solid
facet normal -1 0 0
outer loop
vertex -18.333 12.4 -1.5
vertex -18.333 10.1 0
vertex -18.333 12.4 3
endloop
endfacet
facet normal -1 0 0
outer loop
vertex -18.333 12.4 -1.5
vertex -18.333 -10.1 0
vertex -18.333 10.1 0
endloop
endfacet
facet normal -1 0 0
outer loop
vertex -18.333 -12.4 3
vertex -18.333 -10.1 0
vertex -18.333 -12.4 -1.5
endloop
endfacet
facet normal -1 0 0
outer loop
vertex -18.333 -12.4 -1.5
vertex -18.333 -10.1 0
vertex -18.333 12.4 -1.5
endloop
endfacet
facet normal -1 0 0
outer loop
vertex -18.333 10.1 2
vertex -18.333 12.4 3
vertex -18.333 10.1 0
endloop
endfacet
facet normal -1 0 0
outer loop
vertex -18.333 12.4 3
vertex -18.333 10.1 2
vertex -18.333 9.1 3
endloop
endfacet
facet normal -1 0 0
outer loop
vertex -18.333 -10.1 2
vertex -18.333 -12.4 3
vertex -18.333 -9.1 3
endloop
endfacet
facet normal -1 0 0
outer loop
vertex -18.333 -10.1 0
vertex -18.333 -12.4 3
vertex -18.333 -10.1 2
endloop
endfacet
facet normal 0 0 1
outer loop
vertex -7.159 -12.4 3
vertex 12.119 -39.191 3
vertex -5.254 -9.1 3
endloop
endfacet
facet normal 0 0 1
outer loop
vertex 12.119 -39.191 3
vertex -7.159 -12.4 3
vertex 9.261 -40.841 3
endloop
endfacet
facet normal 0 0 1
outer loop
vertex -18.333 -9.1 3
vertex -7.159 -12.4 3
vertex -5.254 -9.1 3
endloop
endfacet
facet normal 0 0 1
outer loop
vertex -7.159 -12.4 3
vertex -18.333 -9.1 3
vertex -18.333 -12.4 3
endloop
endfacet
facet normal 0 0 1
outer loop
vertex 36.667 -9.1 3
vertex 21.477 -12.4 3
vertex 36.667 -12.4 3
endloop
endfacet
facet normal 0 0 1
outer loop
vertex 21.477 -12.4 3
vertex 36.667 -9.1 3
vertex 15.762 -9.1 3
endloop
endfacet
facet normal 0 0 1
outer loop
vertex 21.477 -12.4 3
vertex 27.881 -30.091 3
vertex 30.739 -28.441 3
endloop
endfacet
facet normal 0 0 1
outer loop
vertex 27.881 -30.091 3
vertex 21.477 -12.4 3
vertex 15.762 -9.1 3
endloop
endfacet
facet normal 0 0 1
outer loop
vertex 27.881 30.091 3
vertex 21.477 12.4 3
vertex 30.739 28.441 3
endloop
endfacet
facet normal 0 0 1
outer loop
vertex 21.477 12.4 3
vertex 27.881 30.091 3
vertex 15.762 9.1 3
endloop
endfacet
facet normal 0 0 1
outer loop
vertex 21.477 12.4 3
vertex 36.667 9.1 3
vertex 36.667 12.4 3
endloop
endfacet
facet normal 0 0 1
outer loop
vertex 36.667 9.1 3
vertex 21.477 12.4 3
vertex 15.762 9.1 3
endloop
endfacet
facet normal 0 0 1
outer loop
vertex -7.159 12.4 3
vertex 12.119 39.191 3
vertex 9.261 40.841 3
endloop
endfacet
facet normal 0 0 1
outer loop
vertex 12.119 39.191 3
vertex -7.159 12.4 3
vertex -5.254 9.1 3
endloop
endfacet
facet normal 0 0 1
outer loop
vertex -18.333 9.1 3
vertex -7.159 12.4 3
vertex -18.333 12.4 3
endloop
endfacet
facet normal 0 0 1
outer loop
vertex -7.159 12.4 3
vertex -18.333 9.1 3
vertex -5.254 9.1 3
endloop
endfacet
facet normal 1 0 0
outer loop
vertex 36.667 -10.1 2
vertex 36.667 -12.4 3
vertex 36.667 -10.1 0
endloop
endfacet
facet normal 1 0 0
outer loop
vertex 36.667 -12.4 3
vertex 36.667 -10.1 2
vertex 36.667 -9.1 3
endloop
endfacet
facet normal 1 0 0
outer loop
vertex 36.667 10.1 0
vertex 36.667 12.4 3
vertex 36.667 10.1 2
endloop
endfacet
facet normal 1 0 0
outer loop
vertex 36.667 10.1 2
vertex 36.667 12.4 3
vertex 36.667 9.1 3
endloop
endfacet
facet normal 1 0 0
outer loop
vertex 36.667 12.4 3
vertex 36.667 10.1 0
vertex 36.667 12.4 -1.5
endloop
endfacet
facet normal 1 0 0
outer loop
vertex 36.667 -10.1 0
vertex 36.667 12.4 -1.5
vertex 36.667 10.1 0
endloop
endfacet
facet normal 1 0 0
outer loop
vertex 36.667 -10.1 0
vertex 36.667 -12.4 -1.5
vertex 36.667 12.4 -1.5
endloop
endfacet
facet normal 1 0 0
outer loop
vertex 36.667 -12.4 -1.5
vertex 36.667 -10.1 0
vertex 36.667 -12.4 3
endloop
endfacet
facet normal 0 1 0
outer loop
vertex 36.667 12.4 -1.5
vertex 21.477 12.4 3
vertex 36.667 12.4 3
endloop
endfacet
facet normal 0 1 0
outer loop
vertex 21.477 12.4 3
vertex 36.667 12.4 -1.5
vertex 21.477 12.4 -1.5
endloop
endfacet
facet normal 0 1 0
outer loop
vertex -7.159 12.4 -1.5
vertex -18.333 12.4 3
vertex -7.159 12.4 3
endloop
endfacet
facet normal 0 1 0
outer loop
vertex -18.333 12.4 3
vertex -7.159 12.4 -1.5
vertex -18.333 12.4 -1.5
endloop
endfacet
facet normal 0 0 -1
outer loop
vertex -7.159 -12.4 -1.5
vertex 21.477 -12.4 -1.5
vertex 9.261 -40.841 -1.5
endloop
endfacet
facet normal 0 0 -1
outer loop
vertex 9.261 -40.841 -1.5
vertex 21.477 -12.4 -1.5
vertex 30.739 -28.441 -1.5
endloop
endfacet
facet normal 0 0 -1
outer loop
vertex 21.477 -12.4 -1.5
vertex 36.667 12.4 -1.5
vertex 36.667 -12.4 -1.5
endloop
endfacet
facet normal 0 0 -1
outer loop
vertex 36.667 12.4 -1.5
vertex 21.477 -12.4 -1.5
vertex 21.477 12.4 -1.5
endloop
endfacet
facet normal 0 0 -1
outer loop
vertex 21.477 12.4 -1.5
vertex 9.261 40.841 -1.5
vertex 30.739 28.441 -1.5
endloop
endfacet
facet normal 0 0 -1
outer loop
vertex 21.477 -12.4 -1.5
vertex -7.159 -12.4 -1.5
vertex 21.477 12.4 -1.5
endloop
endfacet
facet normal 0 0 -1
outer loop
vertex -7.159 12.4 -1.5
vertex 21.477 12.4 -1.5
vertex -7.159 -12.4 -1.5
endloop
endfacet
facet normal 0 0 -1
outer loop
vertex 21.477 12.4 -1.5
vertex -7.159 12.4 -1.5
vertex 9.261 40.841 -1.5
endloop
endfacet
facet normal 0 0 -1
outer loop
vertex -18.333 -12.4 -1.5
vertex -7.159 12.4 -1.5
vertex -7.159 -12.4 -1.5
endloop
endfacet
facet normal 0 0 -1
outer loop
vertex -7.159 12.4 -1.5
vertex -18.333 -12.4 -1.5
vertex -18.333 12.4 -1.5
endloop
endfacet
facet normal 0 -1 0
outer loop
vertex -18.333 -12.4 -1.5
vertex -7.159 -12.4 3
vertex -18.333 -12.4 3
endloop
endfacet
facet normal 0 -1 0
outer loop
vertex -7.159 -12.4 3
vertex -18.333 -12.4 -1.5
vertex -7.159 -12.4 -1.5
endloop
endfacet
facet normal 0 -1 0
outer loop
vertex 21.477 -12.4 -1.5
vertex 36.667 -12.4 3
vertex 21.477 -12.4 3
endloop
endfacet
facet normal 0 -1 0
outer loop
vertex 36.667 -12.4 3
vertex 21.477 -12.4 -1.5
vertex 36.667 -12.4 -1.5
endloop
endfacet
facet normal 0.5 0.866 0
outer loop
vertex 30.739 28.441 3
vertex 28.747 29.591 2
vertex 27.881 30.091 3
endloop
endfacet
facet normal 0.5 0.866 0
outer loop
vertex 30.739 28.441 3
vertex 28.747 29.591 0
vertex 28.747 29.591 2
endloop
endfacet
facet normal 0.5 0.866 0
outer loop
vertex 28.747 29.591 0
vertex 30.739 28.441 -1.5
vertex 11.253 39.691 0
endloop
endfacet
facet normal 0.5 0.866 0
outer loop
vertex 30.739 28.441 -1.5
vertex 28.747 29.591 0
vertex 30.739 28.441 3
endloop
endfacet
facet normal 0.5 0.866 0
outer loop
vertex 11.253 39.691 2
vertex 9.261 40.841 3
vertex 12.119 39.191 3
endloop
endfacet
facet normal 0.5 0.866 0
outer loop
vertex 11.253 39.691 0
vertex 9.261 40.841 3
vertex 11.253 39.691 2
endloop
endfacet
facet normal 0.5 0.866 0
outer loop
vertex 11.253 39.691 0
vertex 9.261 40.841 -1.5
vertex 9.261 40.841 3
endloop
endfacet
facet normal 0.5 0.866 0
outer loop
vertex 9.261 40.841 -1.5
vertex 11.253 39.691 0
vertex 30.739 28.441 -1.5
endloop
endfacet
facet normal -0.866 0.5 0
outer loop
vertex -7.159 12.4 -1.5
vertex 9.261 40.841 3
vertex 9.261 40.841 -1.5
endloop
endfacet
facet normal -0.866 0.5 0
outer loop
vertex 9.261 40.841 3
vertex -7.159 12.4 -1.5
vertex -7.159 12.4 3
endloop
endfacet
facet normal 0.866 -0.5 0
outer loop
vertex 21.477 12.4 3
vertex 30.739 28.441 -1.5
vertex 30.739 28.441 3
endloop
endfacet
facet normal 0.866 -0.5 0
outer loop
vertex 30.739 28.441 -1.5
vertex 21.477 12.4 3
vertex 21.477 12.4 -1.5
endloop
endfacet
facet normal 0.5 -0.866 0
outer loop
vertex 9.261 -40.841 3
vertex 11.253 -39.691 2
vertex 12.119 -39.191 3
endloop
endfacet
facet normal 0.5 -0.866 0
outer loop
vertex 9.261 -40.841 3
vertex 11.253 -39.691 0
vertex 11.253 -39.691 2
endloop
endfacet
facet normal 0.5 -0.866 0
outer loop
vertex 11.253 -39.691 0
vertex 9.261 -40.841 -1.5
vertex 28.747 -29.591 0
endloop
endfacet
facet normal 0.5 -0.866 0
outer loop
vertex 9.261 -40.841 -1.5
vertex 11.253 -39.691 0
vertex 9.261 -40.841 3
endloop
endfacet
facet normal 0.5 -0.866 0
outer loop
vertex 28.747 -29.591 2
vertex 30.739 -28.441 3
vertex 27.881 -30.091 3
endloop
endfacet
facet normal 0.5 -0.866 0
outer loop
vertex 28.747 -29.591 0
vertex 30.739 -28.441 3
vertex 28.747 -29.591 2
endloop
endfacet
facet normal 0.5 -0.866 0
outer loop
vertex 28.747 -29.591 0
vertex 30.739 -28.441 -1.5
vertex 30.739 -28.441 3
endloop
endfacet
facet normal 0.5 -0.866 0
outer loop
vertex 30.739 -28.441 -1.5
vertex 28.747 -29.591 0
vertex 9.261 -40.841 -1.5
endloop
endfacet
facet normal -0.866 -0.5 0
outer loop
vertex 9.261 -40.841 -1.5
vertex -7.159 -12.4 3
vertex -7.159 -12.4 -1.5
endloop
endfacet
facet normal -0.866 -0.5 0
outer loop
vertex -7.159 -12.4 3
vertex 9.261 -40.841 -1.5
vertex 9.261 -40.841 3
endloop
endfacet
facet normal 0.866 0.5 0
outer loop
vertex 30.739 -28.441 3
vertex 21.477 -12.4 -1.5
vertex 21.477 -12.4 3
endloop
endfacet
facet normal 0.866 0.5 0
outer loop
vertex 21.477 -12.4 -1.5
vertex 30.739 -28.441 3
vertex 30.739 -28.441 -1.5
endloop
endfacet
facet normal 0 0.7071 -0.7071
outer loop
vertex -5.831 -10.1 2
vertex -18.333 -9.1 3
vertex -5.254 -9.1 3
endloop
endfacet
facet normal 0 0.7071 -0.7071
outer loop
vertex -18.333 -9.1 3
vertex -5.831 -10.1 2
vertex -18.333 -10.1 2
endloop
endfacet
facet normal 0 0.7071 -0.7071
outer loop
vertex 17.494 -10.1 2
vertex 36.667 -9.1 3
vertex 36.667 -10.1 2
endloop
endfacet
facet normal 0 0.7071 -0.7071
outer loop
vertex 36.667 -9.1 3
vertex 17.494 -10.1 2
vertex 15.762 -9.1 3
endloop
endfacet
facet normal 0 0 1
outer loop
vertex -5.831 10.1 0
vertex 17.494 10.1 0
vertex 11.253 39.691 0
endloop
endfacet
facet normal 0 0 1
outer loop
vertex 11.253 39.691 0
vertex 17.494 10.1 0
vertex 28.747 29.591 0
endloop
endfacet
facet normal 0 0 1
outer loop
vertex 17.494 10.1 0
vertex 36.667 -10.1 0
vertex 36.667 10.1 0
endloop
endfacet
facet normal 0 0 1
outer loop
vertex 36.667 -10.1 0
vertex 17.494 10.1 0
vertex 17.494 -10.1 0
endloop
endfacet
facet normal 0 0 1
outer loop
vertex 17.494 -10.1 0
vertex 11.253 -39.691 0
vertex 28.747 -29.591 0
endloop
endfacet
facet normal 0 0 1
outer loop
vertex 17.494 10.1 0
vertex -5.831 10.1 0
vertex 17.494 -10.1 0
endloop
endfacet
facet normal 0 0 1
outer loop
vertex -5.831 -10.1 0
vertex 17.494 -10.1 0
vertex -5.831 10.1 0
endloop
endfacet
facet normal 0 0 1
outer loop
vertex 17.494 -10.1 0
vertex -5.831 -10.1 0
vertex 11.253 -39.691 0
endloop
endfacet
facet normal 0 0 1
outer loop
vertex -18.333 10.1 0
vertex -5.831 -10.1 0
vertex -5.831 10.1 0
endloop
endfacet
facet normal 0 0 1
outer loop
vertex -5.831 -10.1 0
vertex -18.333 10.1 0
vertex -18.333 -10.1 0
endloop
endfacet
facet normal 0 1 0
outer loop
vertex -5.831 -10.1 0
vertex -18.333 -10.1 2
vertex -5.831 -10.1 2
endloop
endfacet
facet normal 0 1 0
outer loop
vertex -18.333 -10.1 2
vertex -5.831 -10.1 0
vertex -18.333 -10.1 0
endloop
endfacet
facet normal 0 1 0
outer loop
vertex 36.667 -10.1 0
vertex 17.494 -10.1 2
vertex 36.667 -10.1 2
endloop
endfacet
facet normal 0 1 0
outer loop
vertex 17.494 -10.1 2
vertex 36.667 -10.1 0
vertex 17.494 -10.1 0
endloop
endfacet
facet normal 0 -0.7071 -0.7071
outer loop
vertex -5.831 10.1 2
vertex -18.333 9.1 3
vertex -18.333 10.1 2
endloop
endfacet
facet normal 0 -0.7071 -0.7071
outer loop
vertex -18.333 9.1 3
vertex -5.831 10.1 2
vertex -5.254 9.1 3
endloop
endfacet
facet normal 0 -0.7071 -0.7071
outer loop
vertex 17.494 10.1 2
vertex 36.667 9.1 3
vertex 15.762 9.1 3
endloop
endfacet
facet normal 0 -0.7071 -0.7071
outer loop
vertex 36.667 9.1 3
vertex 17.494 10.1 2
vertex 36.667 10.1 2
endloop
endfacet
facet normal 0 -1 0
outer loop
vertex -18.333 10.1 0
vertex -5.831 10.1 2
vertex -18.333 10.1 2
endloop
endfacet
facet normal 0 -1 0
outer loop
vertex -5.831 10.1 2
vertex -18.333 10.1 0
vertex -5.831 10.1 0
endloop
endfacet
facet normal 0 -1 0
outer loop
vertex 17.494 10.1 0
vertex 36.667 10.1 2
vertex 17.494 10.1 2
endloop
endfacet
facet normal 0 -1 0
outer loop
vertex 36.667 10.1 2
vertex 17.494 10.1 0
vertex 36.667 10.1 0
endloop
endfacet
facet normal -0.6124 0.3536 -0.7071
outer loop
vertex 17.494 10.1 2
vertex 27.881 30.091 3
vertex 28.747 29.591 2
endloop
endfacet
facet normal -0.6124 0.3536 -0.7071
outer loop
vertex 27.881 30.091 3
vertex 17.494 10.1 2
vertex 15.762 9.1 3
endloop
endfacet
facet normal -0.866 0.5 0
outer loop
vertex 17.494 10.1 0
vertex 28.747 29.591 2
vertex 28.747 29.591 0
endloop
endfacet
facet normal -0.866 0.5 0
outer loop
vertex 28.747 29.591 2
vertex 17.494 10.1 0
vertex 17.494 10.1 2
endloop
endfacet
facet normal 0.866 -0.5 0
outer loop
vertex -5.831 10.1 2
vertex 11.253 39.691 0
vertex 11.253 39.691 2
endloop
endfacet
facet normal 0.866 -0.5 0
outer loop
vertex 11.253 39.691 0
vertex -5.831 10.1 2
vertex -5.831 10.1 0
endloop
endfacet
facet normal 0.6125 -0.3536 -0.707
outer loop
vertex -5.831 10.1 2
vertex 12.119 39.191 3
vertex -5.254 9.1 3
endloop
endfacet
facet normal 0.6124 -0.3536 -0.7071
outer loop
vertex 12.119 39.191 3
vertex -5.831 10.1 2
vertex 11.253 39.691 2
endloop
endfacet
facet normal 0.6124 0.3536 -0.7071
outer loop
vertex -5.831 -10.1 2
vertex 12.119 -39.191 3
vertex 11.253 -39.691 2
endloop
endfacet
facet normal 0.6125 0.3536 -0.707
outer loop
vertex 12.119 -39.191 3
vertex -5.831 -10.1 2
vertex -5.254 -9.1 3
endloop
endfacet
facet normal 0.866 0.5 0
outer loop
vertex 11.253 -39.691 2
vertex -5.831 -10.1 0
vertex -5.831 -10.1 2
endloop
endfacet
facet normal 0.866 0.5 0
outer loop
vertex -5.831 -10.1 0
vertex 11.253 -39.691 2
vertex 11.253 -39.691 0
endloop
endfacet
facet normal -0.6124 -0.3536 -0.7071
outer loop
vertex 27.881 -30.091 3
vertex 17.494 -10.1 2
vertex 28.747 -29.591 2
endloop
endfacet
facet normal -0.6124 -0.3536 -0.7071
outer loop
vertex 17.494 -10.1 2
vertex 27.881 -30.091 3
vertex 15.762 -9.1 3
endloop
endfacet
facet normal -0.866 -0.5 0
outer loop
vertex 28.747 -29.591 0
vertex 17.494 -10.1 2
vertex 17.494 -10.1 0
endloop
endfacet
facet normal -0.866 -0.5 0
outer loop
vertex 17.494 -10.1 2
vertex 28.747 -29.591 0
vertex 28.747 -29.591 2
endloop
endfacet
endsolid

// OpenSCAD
w=20.2; // Al stripe width
t=2.0; // Al thickness
bt=1.5; // Bottom thickness
ww=2.3; // wall width
tt=1.0; // top overhang
ml=55; // main (central) section length
rl=40; // ray section length

ofs=0;
// ofs=-w*sin(60);

module outer(l)
{
translate([0, -w/2-ww, -bt]) cube([l, w+ww*2, bt+t+tt]);
}

module inner(l, ofs)
{
translate([-ofs,0,0]) hull()
{
  translate([-0.1, -w/2, 0]) cube([l+0.2, w, t]);
  translate([-0.1, -w/2+tt+1, 0]) cube([l+0.2, w-tt*2-2, t+tt+1]);
}
}

difference()
{
union()
{
translate([-ml/3,0,0]) outer(ml);
rotate([0,0,60])outer(rl);
rotate([0,0,-60])outer(rl);
}
translate([0,0,0]) inner(ml, ml/3);
rotate([0,0,60]) inner(rl, ofs);
rotate([0,0,-60]) inner(rl, ofs);
}
